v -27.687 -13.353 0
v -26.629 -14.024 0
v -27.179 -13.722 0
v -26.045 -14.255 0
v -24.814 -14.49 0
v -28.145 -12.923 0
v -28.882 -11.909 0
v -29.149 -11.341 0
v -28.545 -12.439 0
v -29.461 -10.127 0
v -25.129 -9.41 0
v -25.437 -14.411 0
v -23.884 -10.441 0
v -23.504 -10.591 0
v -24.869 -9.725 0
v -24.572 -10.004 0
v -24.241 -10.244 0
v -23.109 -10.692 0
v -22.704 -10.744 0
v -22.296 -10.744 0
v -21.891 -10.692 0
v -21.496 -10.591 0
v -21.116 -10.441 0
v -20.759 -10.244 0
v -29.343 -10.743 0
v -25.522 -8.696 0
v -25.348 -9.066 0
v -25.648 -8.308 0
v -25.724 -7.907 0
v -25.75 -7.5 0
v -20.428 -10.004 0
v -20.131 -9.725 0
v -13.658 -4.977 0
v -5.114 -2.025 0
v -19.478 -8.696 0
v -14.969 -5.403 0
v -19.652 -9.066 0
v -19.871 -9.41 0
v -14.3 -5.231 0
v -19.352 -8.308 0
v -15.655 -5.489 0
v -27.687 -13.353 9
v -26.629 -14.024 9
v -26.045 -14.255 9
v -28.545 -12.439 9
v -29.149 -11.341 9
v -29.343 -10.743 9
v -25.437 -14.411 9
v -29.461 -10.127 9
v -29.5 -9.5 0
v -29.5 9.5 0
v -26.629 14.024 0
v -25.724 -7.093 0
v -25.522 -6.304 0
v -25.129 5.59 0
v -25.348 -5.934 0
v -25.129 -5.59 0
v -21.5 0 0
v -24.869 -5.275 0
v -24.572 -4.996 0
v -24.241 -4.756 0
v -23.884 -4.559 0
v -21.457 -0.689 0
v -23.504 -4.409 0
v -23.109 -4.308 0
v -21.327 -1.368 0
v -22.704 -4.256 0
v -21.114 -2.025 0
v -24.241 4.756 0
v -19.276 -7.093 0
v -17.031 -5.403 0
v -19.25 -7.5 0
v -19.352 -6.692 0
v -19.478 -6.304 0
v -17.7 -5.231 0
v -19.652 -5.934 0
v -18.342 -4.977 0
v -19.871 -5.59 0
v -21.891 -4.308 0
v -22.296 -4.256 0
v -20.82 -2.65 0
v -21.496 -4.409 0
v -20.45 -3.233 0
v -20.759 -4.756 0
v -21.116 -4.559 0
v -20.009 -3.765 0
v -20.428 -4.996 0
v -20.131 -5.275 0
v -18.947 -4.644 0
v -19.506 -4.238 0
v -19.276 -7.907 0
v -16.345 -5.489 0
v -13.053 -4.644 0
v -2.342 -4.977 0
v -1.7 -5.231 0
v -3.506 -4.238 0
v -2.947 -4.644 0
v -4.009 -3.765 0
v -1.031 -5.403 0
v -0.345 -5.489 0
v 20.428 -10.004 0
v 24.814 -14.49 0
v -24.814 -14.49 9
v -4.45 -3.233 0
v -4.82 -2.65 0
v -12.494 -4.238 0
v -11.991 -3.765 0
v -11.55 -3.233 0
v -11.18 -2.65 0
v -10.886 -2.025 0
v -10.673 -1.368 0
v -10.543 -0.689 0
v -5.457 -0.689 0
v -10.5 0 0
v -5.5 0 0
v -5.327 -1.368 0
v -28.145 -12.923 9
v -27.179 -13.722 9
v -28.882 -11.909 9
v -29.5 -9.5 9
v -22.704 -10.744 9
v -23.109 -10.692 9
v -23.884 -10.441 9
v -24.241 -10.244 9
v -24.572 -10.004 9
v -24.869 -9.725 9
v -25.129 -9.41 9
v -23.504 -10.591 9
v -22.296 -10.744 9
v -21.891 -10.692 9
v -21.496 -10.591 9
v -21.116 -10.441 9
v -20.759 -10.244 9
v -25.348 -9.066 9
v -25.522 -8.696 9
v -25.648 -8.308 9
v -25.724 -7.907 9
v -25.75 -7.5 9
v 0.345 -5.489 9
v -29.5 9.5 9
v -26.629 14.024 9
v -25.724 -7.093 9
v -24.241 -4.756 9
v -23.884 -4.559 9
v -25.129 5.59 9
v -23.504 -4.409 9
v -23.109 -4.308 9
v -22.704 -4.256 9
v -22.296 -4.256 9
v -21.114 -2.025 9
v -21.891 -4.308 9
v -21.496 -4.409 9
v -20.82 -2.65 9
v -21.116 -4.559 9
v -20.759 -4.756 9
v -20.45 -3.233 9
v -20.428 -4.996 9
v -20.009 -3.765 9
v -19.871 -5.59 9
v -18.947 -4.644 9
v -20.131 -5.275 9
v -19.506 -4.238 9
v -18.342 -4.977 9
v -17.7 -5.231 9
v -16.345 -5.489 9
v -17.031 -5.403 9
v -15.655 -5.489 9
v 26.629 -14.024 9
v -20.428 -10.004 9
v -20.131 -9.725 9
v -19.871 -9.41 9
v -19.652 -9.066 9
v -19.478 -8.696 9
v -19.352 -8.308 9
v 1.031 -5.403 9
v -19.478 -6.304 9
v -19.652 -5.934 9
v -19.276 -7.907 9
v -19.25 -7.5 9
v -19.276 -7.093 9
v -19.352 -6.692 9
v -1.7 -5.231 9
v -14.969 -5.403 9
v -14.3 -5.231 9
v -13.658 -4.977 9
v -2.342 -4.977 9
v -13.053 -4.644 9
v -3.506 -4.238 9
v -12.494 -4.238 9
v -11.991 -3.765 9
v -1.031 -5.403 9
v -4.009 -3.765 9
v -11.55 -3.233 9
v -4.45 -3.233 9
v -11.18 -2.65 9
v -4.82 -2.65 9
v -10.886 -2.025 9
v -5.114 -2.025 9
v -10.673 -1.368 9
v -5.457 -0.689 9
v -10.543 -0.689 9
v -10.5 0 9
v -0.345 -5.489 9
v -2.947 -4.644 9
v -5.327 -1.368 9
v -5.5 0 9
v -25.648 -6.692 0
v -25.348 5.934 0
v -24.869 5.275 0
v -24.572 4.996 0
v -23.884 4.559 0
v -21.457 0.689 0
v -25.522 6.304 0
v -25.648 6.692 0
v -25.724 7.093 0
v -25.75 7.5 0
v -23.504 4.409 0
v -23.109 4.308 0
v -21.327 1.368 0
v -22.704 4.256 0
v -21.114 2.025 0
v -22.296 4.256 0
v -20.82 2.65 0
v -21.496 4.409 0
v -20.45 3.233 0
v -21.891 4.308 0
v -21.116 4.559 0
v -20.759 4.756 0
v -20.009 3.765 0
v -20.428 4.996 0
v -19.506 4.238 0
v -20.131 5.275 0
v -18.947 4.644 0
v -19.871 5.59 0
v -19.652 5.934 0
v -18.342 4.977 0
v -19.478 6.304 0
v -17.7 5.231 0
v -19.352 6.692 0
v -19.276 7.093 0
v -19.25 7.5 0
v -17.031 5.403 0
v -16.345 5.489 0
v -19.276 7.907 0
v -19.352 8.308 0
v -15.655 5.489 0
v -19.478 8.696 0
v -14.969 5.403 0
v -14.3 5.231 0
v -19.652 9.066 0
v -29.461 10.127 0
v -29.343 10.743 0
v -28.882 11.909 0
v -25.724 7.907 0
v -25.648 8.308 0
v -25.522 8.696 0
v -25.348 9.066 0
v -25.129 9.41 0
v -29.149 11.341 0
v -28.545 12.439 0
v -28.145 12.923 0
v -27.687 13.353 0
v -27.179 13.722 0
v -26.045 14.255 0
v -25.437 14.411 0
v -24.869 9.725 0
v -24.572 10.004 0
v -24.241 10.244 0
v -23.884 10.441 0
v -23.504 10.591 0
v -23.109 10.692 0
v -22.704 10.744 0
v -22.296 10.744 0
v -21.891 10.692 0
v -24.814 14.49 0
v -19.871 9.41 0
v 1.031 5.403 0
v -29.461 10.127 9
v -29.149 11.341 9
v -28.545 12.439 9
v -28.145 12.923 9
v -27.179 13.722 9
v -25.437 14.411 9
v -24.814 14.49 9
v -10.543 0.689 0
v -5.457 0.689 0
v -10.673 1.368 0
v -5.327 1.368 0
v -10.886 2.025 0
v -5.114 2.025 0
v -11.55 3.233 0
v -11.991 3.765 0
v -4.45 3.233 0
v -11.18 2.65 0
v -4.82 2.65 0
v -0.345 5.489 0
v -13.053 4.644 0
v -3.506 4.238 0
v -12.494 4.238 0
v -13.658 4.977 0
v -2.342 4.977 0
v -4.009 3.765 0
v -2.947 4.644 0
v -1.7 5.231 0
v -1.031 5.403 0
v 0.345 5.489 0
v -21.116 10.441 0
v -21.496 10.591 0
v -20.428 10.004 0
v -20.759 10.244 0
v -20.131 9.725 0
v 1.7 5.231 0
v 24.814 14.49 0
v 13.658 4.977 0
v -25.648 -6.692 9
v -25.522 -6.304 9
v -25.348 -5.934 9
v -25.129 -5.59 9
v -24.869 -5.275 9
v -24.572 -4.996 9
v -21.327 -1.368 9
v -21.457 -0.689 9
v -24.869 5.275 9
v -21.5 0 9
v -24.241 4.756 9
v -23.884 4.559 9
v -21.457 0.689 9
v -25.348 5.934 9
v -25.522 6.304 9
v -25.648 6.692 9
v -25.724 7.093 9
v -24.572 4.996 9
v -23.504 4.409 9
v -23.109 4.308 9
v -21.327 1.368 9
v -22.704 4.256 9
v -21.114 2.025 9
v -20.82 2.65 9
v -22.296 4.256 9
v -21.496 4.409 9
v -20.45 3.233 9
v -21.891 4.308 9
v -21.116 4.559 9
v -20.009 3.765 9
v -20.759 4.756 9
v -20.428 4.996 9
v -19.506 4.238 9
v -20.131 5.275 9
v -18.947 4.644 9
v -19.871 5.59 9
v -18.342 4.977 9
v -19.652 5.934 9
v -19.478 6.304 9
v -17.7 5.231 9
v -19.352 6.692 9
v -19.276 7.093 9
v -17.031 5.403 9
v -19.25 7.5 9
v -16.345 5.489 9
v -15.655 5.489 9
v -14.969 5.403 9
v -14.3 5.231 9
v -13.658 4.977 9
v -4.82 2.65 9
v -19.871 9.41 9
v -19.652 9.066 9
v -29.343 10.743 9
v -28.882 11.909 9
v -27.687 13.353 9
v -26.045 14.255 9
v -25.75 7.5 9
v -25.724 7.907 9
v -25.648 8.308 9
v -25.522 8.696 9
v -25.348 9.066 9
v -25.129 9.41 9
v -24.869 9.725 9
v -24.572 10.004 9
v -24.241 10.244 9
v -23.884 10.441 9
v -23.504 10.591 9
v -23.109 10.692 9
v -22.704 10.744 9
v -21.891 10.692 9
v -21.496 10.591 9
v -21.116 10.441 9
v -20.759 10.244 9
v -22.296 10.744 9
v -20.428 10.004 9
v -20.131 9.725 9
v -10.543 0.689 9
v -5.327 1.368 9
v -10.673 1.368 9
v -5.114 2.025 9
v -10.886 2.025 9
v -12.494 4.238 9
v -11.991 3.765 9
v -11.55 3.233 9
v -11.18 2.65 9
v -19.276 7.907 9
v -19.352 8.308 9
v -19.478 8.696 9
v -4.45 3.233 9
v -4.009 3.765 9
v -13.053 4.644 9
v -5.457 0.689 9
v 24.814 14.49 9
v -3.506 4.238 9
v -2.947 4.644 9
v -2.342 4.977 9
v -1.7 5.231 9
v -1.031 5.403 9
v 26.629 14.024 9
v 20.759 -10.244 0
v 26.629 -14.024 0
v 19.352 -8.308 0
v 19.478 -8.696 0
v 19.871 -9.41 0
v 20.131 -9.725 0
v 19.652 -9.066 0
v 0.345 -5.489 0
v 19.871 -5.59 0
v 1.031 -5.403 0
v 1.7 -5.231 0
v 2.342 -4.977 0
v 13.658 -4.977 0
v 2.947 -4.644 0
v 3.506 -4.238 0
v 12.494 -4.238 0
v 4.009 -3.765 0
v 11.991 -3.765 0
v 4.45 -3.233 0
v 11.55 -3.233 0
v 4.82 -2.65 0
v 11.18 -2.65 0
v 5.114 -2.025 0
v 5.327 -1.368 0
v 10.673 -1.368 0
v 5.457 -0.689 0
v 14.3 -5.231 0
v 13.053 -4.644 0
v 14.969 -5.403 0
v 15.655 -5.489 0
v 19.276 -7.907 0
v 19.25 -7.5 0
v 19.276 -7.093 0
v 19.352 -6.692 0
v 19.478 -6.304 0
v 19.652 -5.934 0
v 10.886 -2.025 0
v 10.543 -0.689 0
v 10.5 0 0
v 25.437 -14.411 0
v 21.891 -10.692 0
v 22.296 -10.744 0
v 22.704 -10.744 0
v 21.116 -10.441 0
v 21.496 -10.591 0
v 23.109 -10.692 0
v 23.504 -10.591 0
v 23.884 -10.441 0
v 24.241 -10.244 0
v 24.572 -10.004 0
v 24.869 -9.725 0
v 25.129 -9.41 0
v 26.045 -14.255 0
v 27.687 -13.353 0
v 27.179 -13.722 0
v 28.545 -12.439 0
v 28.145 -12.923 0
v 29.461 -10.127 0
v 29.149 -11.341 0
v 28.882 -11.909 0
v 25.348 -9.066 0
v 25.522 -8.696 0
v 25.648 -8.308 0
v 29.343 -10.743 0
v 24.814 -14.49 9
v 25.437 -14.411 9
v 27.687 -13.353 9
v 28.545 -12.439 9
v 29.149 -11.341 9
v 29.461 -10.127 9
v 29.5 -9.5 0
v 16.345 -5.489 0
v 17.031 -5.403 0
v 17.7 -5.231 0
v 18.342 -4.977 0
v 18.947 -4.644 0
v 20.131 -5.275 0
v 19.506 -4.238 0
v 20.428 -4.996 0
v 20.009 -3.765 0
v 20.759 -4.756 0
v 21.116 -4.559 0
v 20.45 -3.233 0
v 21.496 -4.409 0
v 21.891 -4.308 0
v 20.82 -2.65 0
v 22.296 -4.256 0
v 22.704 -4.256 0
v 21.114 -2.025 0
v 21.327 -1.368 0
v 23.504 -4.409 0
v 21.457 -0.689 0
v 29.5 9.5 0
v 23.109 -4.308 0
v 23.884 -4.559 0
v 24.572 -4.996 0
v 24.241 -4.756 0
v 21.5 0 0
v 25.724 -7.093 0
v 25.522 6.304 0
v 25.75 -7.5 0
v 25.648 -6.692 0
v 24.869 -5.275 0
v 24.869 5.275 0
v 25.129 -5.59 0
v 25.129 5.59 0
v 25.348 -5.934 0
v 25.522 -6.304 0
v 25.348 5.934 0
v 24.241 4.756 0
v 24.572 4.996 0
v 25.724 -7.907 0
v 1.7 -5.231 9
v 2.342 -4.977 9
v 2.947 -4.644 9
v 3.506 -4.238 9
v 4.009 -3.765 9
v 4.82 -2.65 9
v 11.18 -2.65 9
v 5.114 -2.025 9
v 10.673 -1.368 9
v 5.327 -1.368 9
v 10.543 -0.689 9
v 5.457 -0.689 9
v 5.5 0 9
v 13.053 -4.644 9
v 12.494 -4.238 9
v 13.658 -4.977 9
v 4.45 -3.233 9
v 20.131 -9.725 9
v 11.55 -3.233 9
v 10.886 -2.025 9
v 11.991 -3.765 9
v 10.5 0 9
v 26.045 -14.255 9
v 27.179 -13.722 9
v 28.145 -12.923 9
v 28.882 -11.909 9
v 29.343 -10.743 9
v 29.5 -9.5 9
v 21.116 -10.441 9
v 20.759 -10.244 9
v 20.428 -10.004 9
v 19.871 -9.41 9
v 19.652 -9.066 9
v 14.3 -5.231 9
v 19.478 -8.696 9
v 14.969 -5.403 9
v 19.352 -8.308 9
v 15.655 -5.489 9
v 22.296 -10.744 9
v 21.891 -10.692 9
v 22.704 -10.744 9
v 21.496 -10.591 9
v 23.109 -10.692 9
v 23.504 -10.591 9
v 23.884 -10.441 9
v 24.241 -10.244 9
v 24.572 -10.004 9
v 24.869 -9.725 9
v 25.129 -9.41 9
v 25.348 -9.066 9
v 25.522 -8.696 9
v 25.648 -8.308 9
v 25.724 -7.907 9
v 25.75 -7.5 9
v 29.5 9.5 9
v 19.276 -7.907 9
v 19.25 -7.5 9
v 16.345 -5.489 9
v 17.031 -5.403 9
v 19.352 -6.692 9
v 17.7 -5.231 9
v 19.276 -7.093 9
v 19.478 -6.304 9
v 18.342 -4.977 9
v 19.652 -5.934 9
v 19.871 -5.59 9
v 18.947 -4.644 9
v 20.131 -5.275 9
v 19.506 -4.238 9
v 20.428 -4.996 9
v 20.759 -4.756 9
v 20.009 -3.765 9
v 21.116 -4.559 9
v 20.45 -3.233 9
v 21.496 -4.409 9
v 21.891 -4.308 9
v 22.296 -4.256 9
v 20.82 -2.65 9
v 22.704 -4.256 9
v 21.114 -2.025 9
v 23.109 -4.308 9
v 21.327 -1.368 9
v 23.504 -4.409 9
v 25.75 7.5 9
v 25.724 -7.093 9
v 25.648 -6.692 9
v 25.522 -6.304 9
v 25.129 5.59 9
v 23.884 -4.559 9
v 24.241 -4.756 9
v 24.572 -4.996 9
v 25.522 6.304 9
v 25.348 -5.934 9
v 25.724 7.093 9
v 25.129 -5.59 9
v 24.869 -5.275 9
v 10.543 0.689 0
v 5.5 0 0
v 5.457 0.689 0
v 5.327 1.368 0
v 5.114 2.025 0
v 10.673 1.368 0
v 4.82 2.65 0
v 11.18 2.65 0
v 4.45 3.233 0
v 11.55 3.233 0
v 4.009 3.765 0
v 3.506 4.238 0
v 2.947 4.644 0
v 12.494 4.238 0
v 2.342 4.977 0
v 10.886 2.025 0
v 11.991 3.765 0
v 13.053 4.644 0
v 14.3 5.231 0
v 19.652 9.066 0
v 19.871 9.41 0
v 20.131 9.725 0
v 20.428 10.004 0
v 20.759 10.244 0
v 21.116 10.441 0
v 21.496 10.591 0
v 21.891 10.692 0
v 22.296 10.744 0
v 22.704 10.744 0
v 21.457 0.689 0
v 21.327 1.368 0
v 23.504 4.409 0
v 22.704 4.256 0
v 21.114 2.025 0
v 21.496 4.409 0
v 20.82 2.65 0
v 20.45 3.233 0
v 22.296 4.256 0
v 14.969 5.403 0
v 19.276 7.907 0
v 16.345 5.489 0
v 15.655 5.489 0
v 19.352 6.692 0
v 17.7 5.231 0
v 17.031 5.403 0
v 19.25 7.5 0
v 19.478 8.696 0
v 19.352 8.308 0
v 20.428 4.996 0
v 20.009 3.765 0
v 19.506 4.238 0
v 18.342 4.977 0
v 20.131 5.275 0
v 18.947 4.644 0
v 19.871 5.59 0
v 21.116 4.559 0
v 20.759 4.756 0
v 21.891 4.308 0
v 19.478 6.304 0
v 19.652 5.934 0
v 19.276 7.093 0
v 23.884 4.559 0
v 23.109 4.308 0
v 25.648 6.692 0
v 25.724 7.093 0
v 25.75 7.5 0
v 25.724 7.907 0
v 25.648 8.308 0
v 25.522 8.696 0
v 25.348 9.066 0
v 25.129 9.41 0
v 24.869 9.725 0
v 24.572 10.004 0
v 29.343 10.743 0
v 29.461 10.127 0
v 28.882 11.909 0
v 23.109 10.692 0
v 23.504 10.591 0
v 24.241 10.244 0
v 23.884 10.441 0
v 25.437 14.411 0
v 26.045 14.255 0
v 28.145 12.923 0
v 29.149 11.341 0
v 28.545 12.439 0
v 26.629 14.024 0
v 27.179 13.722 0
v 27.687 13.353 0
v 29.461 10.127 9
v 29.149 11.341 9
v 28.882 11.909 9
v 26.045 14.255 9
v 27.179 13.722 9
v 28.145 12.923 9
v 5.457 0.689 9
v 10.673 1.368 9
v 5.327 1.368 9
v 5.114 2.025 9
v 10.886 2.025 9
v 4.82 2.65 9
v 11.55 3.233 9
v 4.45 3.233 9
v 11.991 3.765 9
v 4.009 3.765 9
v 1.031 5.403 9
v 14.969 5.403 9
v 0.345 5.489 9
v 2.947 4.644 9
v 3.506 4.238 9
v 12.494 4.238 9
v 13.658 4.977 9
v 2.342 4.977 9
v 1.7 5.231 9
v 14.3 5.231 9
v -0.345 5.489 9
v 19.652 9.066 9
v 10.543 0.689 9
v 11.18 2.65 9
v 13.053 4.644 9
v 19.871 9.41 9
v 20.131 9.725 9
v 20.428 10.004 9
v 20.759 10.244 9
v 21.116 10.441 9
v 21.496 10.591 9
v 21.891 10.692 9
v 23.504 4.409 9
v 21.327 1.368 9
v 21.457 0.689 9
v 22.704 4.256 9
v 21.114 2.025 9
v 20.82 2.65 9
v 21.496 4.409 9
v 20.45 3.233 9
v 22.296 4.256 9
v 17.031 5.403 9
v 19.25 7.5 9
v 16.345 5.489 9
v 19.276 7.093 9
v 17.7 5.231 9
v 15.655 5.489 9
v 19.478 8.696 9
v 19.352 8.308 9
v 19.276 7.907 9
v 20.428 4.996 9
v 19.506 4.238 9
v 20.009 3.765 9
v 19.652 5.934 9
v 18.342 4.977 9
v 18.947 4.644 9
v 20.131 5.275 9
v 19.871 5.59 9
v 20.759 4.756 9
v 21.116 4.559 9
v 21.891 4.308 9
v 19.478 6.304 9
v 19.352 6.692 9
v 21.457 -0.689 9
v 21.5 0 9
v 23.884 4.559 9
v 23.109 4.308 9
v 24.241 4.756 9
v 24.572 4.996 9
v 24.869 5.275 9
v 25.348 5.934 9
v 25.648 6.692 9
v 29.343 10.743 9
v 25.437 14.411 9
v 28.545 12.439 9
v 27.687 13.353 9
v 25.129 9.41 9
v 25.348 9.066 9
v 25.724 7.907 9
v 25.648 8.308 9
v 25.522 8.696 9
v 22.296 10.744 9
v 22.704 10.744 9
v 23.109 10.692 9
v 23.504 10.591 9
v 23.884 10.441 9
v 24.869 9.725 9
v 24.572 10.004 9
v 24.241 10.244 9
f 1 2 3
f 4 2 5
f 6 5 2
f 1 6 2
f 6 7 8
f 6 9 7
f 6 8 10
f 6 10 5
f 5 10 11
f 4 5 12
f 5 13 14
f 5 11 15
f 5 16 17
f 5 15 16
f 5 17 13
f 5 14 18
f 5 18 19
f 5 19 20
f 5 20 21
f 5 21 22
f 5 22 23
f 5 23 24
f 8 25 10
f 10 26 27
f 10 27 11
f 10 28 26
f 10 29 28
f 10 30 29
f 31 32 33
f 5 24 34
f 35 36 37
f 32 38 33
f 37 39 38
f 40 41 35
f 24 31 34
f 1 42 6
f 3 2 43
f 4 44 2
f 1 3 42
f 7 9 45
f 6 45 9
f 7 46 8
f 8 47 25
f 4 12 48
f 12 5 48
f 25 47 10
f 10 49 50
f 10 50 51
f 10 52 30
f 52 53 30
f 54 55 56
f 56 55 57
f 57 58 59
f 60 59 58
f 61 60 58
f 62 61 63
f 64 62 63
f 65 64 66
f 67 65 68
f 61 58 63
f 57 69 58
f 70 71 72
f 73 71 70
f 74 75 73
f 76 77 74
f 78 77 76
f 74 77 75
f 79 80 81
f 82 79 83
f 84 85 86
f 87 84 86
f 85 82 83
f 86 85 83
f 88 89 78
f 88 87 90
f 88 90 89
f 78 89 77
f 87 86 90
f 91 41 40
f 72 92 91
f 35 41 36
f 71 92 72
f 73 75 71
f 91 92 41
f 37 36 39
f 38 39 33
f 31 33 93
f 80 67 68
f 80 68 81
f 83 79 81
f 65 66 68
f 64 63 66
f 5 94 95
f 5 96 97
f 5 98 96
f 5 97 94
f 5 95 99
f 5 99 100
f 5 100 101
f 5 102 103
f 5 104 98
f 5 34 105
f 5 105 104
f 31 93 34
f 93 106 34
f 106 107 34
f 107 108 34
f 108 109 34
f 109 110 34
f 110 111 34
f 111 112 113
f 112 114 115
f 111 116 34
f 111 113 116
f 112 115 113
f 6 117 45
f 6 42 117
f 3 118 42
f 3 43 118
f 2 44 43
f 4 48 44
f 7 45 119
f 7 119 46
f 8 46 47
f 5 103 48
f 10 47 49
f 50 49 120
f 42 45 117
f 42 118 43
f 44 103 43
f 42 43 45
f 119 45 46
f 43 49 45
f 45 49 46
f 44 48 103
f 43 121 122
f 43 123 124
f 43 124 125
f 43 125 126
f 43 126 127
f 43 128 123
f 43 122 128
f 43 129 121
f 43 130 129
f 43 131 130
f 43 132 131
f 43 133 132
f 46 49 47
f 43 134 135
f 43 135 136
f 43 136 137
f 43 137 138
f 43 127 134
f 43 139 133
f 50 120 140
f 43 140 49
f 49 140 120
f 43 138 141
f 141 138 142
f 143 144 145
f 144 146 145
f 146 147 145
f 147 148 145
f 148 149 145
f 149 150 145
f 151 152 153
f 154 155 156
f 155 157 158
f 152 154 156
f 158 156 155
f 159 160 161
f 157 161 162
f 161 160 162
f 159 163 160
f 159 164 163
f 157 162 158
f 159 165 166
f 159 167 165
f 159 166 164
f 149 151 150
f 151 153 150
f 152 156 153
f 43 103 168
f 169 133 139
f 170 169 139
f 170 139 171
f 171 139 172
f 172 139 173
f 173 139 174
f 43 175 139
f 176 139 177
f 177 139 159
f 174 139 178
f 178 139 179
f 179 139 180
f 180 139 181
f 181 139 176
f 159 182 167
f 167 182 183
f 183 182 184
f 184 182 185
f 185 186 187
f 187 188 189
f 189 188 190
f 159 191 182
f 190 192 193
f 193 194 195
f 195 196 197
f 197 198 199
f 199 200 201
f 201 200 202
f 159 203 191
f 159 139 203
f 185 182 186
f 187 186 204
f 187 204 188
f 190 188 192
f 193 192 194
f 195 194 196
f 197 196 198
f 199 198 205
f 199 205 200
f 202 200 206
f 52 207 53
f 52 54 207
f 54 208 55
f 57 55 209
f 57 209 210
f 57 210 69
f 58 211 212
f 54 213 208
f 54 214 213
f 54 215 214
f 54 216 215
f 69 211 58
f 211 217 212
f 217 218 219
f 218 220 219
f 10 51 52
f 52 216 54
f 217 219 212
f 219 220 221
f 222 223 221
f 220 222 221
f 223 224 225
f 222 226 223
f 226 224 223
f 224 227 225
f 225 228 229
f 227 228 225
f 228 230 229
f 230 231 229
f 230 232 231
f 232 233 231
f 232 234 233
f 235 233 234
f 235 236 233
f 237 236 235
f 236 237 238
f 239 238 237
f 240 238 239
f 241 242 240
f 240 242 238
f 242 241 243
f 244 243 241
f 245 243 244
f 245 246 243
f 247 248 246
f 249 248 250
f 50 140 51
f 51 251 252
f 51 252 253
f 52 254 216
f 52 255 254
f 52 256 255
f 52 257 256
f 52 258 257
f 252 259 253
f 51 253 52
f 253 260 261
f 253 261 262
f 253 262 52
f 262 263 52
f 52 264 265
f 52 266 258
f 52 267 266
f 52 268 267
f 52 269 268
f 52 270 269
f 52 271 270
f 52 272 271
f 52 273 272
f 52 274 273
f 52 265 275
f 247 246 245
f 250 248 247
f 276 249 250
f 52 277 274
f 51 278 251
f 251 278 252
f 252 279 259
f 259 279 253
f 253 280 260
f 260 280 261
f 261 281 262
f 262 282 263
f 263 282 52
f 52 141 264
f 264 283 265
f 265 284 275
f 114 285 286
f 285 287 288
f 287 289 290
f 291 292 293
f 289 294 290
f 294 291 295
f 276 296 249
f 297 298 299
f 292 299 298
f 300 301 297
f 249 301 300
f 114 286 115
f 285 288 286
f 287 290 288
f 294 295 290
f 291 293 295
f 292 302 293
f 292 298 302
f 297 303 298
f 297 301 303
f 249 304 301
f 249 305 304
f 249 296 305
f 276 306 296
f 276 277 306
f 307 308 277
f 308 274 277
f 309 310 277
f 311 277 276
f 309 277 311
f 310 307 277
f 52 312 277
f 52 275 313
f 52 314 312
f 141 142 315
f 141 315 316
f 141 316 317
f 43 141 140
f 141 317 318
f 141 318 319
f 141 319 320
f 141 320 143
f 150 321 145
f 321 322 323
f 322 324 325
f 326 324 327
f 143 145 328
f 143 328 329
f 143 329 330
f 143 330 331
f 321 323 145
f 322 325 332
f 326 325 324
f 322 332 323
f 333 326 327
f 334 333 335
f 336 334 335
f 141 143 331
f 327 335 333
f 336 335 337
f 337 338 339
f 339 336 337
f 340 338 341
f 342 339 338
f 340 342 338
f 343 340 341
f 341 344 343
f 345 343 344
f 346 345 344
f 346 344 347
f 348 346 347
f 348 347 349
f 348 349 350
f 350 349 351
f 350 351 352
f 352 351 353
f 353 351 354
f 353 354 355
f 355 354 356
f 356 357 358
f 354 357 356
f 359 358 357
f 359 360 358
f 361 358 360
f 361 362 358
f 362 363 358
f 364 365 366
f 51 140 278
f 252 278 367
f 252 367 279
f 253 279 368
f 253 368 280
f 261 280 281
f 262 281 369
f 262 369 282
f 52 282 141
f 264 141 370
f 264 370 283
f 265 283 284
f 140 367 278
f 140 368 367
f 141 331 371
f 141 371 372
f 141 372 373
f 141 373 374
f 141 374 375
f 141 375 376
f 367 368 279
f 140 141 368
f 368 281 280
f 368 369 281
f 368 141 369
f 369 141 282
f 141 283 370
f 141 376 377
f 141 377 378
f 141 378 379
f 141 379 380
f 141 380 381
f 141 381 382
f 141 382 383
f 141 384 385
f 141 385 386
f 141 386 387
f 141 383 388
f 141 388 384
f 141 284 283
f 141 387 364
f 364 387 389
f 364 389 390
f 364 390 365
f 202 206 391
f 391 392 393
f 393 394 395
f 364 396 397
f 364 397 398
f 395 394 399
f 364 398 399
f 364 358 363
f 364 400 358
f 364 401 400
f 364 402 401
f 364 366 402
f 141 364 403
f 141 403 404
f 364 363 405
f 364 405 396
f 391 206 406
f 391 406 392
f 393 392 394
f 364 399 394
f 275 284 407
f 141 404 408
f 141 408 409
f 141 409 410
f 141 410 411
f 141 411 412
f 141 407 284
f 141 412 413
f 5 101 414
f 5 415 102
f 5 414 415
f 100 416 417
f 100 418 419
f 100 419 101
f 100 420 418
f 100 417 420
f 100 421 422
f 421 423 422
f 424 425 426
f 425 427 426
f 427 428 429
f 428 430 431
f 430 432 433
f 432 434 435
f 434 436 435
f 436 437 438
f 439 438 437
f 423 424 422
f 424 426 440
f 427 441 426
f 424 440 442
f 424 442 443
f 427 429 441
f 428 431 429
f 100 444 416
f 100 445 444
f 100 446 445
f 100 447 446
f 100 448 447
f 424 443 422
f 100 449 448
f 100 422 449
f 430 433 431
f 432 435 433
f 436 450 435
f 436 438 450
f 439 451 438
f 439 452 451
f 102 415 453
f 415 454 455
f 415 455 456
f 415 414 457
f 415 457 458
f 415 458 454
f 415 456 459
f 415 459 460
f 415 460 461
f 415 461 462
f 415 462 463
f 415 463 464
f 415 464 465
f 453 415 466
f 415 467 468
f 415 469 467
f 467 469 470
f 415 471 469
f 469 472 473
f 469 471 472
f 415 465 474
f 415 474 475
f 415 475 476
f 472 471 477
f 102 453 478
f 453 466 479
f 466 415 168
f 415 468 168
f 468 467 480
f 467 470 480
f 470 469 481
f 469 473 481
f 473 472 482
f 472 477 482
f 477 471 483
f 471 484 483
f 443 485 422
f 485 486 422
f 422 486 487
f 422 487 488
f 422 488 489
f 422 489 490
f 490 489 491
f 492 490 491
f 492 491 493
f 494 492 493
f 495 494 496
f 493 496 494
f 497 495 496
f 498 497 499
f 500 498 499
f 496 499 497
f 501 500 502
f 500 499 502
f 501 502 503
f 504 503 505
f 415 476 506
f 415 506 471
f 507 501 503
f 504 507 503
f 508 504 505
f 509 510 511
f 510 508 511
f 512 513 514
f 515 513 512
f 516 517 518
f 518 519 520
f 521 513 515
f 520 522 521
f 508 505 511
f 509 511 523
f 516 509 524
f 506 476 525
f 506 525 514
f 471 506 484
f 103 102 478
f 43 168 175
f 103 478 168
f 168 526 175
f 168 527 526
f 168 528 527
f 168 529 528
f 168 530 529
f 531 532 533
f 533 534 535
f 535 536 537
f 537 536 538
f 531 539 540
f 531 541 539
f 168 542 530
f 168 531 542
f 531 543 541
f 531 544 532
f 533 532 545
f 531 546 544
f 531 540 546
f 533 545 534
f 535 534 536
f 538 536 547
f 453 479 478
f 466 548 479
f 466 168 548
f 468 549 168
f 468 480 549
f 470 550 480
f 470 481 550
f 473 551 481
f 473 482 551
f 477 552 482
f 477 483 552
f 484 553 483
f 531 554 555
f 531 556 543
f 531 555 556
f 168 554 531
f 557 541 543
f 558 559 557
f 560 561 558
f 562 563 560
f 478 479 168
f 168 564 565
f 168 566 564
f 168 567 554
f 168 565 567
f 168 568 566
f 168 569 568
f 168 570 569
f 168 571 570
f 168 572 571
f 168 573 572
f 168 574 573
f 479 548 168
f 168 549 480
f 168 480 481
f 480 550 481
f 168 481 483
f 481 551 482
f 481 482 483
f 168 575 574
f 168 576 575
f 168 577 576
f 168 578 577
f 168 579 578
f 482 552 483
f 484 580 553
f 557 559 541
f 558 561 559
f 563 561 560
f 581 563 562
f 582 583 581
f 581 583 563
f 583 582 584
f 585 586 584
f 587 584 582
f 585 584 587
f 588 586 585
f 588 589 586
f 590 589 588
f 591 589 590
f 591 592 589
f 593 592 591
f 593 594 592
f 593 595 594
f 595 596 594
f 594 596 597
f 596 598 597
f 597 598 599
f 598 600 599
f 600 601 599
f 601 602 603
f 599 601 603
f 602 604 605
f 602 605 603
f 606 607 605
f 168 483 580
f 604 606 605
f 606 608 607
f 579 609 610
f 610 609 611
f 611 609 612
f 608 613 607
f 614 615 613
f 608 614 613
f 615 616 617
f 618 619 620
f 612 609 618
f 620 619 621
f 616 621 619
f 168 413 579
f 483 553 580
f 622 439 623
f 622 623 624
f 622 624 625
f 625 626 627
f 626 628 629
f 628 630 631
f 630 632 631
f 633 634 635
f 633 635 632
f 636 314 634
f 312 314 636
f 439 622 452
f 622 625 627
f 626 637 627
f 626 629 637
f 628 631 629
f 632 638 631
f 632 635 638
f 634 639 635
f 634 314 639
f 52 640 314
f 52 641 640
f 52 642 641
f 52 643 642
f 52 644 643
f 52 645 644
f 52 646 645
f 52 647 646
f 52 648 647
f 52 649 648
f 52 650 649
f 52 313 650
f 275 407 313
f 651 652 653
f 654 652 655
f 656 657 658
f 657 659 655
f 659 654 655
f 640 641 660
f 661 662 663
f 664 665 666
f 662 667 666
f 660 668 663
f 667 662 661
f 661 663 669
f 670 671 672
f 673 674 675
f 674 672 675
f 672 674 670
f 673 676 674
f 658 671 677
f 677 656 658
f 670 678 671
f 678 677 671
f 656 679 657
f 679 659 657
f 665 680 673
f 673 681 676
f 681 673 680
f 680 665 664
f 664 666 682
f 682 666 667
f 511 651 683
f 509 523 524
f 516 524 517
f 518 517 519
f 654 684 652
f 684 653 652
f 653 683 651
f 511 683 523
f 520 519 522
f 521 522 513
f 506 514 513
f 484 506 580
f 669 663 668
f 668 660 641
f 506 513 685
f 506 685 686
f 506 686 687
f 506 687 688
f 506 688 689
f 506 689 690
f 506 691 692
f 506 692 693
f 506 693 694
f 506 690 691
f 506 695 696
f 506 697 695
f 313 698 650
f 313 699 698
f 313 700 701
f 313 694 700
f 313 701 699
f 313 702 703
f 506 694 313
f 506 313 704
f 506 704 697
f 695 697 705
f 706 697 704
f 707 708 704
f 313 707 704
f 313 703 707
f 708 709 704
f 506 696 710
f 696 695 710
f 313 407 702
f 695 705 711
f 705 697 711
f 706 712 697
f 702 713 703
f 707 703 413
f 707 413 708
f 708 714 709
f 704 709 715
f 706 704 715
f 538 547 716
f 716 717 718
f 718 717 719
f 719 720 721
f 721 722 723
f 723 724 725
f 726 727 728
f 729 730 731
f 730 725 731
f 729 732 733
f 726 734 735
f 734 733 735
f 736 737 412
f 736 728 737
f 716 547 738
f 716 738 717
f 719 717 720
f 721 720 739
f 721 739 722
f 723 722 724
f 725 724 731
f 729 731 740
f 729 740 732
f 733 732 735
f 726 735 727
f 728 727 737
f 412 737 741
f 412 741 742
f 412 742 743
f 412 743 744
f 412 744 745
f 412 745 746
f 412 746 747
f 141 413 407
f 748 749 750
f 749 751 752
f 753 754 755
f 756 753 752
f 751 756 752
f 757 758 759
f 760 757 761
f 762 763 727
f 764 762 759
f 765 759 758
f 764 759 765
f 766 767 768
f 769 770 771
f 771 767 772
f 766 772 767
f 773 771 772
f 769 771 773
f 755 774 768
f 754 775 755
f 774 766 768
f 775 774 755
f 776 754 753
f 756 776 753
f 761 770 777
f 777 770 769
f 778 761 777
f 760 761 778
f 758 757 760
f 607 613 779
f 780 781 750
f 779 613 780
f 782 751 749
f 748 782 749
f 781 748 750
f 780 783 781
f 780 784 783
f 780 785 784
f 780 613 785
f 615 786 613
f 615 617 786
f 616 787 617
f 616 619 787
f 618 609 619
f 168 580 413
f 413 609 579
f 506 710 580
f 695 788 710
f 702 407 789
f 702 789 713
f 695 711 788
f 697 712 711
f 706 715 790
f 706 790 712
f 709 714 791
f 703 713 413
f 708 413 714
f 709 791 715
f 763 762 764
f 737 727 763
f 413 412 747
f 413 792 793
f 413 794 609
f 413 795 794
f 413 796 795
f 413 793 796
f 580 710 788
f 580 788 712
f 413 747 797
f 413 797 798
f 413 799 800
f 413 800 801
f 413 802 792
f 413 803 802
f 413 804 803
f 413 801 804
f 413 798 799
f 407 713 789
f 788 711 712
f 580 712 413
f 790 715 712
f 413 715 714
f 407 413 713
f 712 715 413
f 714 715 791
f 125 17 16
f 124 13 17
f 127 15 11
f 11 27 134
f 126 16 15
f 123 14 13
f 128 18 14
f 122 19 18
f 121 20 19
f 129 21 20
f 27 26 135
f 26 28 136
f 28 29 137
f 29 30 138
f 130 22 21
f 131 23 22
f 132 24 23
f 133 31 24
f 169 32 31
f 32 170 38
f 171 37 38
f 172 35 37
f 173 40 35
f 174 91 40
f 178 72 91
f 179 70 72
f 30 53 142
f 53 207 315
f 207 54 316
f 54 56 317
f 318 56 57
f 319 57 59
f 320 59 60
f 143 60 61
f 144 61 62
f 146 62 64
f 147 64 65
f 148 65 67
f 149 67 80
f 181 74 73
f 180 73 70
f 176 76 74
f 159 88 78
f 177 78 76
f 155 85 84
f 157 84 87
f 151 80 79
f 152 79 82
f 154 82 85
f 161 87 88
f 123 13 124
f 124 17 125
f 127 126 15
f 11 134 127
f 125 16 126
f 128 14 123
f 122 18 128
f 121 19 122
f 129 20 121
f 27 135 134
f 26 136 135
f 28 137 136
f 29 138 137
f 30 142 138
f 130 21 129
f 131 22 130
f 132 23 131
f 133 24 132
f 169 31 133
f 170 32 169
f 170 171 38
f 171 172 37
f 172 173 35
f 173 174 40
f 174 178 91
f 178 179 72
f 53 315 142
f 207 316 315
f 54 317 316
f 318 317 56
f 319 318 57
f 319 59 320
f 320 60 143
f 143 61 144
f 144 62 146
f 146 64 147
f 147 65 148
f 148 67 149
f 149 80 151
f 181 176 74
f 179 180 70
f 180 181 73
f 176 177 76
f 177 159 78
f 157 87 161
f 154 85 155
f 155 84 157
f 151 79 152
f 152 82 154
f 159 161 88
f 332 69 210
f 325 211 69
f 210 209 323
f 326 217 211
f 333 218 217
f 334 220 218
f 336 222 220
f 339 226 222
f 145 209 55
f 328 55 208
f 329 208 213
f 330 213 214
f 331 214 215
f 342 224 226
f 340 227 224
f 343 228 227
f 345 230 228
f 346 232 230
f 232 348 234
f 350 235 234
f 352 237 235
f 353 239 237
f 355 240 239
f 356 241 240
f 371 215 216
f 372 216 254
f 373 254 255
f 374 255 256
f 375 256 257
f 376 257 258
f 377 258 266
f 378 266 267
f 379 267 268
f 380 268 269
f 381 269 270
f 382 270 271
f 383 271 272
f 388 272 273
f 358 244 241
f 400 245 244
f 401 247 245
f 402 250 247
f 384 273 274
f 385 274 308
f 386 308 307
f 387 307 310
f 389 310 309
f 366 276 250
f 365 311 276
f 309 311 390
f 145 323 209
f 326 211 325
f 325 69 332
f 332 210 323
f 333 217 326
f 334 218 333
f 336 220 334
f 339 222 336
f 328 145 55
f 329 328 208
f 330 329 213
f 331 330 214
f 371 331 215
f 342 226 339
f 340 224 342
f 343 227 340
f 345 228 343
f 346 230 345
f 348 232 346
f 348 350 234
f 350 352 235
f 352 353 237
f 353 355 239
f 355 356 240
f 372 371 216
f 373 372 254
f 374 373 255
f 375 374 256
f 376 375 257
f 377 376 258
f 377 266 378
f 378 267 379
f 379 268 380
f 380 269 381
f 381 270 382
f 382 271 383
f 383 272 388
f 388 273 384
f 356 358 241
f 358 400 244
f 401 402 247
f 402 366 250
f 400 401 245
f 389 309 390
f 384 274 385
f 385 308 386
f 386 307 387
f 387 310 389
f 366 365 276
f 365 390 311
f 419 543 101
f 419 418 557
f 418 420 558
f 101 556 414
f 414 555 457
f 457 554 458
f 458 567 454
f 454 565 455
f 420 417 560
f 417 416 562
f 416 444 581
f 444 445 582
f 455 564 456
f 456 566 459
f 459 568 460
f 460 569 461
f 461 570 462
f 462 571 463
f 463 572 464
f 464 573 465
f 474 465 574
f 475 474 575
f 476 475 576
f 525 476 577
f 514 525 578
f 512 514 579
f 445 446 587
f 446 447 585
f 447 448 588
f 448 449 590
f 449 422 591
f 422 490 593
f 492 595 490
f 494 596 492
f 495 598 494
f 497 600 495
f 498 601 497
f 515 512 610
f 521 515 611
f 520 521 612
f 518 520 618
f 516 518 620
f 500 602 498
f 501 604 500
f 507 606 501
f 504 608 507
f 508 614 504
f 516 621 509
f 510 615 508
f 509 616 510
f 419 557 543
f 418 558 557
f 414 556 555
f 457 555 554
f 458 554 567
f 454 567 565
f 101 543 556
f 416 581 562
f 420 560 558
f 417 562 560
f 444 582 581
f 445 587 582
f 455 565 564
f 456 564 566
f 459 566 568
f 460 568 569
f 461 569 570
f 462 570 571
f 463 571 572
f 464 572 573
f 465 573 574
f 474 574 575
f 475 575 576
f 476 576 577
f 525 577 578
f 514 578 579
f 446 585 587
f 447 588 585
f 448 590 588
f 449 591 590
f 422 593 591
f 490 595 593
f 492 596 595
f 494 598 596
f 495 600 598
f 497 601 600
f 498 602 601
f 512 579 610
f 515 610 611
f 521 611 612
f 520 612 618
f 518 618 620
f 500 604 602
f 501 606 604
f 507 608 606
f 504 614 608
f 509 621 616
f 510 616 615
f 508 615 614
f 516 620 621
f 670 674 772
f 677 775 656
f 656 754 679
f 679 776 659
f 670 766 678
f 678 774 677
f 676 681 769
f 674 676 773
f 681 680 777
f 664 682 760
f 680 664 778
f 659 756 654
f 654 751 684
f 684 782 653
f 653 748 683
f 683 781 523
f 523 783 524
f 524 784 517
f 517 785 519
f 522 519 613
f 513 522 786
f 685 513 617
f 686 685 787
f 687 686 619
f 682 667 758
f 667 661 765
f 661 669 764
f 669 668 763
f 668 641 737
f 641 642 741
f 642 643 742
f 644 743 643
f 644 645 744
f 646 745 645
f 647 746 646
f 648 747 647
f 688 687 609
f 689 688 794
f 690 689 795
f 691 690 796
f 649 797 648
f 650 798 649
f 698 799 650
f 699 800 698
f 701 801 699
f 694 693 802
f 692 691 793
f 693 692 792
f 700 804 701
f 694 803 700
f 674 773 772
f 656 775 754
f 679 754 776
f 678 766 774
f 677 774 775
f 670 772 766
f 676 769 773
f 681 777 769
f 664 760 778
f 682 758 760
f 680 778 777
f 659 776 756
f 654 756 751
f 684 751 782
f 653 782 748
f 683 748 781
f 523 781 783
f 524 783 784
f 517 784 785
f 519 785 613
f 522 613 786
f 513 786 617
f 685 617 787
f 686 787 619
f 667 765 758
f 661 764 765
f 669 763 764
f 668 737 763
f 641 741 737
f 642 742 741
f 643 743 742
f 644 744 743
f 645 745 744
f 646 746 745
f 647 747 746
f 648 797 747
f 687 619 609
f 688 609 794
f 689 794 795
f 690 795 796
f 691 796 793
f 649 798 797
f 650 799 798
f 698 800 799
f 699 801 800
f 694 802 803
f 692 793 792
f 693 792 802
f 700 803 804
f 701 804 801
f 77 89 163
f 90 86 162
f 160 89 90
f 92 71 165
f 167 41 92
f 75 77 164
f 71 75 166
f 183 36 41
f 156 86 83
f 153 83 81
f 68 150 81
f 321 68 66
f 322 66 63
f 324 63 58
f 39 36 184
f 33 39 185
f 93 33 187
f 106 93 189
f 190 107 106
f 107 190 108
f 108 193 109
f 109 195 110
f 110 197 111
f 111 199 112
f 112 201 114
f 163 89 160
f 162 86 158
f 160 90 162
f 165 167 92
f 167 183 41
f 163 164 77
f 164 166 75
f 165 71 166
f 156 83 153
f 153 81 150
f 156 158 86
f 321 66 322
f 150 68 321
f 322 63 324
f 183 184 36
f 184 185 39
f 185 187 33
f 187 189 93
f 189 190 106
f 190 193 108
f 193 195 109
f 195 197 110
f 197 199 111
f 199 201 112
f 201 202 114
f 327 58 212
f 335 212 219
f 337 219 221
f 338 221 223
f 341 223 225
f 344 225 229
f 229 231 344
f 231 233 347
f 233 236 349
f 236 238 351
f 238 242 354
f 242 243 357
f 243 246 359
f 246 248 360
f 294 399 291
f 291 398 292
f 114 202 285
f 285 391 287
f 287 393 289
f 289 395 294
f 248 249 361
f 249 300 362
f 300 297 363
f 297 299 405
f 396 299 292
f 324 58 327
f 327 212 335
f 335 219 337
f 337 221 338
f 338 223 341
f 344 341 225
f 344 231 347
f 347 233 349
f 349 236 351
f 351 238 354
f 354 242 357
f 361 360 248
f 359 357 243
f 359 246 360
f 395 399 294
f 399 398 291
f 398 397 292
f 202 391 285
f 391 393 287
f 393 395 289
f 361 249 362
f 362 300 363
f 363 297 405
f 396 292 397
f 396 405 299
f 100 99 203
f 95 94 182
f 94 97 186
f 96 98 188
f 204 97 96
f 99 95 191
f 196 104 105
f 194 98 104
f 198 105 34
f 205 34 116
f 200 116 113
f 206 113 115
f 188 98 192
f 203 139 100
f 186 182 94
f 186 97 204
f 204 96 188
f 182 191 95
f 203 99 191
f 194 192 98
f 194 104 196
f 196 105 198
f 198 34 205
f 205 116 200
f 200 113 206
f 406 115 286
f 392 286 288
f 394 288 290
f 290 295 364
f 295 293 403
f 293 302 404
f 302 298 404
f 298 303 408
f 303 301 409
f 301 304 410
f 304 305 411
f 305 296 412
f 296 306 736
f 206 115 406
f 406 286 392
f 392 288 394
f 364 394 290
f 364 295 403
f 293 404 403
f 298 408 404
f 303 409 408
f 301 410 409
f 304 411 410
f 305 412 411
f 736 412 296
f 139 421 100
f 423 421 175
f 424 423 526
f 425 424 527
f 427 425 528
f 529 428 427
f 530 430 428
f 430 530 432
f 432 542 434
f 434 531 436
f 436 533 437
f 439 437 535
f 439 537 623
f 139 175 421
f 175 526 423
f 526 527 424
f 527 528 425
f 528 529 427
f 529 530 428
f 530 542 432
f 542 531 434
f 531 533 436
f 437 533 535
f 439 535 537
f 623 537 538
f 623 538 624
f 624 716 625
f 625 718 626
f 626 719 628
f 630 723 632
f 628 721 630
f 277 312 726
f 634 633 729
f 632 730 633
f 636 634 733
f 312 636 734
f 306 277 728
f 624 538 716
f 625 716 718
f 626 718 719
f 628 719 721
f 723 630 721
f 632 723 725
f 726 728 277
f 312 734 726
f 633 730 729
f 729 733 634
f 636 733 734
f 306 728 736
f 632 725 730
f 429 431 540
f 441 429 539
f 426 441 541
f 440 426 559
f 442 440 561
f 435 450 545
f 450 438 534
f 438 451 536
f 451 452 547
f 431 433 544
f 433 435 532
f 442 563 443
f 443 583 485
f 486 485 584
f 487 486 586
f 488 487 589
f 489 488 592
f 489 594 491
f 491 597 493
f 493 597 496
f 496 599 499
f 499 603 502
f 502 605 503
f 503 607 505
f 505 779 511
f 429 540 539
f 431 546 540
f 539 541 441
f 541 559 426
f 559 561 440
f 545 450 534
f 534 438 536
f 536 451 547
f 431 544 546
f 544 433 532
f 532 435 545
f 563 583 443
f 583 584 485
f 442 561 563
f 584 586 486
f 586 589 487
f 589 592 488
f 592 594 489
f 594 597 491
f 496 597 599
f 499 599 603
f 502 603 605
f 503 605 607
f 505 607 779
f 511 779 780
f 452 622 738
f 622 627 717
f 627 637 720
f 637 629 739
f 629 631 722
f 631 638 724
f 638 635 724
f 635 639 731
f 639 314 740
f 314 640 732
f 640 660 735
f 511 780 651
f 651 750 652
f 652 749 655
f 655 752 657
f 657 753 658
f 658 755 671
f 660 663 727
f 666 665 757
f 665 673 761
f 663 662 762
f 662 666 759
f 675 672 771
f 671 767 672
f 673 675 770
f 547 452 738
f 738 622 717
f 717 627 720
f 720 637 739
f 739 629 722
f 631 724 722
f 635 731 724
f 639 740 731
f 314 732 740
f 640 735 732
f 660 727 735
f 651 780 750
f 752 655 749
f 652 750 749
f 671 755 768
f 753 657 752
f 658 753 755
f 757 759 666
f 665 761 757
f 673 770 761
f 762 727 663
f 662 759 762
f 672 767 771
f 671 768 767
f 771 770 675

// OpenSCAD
$fn = 50;

difference() {
	union() {
		hull() {
			translate(v = [-24.5, 9.5, 0]) {
				cylinder(h = 9, r = 5);
			}
			translate(v = [24.5, 9.5, 0]) {
				cylinder(h = 9, r = 5);
			}
			translate(v = [-24.5, -9.5, 0]) {
				cylinder(h = 9, r = 5);
			}
			translate(v = [24.5, -9.5, 0]) {
				cylinder(h = 9, r = 5);
			}
		}
	}
	union() {
		translate(v = [-22.5, -7.5, -100.0]) {
			cylinder(h = 200, r = 3.25);
		}
		translate(v = [-22.5, 7.5, -100.0]) {
			cylinder(h = 200, r = 3.25);
		}
		translate(v = [22.5, -7.5, -100.0]) {
			cylinder(h = 200, r = 3.25);
		}
		translate(v = [22.5, 7.5, -100.0]) {
			cylinder(h = 200, r = 3.25);
		}
		translate(v = [-22.5, -7.5, -100.0]) {
			cylinder(h = 200, r = 1.8);
		}
		translate(v = [-22.5, 7.5, -100.0]) {
			cylinder(h = 200, r = 1.8);
		}
		translate(v = [22.5, -7.5, -100.0]) {
			cylinder(h = 200, r = 1.8);
		}
		translate(v = [22.5, 7.5, -100.0]) {
			cylinder(h = 200, r = 1.8);
		}
		translate(v = [-16.0, 0, 0.0]) {
			cylinder(h = 9, r = 5.5);
		}
		cylinder(h = 9, r = 5.5);
		translate(v = [16.0, 0, 0.0]) {
			cylinder(h = 9, r = 5.5);
		}
	}
}
